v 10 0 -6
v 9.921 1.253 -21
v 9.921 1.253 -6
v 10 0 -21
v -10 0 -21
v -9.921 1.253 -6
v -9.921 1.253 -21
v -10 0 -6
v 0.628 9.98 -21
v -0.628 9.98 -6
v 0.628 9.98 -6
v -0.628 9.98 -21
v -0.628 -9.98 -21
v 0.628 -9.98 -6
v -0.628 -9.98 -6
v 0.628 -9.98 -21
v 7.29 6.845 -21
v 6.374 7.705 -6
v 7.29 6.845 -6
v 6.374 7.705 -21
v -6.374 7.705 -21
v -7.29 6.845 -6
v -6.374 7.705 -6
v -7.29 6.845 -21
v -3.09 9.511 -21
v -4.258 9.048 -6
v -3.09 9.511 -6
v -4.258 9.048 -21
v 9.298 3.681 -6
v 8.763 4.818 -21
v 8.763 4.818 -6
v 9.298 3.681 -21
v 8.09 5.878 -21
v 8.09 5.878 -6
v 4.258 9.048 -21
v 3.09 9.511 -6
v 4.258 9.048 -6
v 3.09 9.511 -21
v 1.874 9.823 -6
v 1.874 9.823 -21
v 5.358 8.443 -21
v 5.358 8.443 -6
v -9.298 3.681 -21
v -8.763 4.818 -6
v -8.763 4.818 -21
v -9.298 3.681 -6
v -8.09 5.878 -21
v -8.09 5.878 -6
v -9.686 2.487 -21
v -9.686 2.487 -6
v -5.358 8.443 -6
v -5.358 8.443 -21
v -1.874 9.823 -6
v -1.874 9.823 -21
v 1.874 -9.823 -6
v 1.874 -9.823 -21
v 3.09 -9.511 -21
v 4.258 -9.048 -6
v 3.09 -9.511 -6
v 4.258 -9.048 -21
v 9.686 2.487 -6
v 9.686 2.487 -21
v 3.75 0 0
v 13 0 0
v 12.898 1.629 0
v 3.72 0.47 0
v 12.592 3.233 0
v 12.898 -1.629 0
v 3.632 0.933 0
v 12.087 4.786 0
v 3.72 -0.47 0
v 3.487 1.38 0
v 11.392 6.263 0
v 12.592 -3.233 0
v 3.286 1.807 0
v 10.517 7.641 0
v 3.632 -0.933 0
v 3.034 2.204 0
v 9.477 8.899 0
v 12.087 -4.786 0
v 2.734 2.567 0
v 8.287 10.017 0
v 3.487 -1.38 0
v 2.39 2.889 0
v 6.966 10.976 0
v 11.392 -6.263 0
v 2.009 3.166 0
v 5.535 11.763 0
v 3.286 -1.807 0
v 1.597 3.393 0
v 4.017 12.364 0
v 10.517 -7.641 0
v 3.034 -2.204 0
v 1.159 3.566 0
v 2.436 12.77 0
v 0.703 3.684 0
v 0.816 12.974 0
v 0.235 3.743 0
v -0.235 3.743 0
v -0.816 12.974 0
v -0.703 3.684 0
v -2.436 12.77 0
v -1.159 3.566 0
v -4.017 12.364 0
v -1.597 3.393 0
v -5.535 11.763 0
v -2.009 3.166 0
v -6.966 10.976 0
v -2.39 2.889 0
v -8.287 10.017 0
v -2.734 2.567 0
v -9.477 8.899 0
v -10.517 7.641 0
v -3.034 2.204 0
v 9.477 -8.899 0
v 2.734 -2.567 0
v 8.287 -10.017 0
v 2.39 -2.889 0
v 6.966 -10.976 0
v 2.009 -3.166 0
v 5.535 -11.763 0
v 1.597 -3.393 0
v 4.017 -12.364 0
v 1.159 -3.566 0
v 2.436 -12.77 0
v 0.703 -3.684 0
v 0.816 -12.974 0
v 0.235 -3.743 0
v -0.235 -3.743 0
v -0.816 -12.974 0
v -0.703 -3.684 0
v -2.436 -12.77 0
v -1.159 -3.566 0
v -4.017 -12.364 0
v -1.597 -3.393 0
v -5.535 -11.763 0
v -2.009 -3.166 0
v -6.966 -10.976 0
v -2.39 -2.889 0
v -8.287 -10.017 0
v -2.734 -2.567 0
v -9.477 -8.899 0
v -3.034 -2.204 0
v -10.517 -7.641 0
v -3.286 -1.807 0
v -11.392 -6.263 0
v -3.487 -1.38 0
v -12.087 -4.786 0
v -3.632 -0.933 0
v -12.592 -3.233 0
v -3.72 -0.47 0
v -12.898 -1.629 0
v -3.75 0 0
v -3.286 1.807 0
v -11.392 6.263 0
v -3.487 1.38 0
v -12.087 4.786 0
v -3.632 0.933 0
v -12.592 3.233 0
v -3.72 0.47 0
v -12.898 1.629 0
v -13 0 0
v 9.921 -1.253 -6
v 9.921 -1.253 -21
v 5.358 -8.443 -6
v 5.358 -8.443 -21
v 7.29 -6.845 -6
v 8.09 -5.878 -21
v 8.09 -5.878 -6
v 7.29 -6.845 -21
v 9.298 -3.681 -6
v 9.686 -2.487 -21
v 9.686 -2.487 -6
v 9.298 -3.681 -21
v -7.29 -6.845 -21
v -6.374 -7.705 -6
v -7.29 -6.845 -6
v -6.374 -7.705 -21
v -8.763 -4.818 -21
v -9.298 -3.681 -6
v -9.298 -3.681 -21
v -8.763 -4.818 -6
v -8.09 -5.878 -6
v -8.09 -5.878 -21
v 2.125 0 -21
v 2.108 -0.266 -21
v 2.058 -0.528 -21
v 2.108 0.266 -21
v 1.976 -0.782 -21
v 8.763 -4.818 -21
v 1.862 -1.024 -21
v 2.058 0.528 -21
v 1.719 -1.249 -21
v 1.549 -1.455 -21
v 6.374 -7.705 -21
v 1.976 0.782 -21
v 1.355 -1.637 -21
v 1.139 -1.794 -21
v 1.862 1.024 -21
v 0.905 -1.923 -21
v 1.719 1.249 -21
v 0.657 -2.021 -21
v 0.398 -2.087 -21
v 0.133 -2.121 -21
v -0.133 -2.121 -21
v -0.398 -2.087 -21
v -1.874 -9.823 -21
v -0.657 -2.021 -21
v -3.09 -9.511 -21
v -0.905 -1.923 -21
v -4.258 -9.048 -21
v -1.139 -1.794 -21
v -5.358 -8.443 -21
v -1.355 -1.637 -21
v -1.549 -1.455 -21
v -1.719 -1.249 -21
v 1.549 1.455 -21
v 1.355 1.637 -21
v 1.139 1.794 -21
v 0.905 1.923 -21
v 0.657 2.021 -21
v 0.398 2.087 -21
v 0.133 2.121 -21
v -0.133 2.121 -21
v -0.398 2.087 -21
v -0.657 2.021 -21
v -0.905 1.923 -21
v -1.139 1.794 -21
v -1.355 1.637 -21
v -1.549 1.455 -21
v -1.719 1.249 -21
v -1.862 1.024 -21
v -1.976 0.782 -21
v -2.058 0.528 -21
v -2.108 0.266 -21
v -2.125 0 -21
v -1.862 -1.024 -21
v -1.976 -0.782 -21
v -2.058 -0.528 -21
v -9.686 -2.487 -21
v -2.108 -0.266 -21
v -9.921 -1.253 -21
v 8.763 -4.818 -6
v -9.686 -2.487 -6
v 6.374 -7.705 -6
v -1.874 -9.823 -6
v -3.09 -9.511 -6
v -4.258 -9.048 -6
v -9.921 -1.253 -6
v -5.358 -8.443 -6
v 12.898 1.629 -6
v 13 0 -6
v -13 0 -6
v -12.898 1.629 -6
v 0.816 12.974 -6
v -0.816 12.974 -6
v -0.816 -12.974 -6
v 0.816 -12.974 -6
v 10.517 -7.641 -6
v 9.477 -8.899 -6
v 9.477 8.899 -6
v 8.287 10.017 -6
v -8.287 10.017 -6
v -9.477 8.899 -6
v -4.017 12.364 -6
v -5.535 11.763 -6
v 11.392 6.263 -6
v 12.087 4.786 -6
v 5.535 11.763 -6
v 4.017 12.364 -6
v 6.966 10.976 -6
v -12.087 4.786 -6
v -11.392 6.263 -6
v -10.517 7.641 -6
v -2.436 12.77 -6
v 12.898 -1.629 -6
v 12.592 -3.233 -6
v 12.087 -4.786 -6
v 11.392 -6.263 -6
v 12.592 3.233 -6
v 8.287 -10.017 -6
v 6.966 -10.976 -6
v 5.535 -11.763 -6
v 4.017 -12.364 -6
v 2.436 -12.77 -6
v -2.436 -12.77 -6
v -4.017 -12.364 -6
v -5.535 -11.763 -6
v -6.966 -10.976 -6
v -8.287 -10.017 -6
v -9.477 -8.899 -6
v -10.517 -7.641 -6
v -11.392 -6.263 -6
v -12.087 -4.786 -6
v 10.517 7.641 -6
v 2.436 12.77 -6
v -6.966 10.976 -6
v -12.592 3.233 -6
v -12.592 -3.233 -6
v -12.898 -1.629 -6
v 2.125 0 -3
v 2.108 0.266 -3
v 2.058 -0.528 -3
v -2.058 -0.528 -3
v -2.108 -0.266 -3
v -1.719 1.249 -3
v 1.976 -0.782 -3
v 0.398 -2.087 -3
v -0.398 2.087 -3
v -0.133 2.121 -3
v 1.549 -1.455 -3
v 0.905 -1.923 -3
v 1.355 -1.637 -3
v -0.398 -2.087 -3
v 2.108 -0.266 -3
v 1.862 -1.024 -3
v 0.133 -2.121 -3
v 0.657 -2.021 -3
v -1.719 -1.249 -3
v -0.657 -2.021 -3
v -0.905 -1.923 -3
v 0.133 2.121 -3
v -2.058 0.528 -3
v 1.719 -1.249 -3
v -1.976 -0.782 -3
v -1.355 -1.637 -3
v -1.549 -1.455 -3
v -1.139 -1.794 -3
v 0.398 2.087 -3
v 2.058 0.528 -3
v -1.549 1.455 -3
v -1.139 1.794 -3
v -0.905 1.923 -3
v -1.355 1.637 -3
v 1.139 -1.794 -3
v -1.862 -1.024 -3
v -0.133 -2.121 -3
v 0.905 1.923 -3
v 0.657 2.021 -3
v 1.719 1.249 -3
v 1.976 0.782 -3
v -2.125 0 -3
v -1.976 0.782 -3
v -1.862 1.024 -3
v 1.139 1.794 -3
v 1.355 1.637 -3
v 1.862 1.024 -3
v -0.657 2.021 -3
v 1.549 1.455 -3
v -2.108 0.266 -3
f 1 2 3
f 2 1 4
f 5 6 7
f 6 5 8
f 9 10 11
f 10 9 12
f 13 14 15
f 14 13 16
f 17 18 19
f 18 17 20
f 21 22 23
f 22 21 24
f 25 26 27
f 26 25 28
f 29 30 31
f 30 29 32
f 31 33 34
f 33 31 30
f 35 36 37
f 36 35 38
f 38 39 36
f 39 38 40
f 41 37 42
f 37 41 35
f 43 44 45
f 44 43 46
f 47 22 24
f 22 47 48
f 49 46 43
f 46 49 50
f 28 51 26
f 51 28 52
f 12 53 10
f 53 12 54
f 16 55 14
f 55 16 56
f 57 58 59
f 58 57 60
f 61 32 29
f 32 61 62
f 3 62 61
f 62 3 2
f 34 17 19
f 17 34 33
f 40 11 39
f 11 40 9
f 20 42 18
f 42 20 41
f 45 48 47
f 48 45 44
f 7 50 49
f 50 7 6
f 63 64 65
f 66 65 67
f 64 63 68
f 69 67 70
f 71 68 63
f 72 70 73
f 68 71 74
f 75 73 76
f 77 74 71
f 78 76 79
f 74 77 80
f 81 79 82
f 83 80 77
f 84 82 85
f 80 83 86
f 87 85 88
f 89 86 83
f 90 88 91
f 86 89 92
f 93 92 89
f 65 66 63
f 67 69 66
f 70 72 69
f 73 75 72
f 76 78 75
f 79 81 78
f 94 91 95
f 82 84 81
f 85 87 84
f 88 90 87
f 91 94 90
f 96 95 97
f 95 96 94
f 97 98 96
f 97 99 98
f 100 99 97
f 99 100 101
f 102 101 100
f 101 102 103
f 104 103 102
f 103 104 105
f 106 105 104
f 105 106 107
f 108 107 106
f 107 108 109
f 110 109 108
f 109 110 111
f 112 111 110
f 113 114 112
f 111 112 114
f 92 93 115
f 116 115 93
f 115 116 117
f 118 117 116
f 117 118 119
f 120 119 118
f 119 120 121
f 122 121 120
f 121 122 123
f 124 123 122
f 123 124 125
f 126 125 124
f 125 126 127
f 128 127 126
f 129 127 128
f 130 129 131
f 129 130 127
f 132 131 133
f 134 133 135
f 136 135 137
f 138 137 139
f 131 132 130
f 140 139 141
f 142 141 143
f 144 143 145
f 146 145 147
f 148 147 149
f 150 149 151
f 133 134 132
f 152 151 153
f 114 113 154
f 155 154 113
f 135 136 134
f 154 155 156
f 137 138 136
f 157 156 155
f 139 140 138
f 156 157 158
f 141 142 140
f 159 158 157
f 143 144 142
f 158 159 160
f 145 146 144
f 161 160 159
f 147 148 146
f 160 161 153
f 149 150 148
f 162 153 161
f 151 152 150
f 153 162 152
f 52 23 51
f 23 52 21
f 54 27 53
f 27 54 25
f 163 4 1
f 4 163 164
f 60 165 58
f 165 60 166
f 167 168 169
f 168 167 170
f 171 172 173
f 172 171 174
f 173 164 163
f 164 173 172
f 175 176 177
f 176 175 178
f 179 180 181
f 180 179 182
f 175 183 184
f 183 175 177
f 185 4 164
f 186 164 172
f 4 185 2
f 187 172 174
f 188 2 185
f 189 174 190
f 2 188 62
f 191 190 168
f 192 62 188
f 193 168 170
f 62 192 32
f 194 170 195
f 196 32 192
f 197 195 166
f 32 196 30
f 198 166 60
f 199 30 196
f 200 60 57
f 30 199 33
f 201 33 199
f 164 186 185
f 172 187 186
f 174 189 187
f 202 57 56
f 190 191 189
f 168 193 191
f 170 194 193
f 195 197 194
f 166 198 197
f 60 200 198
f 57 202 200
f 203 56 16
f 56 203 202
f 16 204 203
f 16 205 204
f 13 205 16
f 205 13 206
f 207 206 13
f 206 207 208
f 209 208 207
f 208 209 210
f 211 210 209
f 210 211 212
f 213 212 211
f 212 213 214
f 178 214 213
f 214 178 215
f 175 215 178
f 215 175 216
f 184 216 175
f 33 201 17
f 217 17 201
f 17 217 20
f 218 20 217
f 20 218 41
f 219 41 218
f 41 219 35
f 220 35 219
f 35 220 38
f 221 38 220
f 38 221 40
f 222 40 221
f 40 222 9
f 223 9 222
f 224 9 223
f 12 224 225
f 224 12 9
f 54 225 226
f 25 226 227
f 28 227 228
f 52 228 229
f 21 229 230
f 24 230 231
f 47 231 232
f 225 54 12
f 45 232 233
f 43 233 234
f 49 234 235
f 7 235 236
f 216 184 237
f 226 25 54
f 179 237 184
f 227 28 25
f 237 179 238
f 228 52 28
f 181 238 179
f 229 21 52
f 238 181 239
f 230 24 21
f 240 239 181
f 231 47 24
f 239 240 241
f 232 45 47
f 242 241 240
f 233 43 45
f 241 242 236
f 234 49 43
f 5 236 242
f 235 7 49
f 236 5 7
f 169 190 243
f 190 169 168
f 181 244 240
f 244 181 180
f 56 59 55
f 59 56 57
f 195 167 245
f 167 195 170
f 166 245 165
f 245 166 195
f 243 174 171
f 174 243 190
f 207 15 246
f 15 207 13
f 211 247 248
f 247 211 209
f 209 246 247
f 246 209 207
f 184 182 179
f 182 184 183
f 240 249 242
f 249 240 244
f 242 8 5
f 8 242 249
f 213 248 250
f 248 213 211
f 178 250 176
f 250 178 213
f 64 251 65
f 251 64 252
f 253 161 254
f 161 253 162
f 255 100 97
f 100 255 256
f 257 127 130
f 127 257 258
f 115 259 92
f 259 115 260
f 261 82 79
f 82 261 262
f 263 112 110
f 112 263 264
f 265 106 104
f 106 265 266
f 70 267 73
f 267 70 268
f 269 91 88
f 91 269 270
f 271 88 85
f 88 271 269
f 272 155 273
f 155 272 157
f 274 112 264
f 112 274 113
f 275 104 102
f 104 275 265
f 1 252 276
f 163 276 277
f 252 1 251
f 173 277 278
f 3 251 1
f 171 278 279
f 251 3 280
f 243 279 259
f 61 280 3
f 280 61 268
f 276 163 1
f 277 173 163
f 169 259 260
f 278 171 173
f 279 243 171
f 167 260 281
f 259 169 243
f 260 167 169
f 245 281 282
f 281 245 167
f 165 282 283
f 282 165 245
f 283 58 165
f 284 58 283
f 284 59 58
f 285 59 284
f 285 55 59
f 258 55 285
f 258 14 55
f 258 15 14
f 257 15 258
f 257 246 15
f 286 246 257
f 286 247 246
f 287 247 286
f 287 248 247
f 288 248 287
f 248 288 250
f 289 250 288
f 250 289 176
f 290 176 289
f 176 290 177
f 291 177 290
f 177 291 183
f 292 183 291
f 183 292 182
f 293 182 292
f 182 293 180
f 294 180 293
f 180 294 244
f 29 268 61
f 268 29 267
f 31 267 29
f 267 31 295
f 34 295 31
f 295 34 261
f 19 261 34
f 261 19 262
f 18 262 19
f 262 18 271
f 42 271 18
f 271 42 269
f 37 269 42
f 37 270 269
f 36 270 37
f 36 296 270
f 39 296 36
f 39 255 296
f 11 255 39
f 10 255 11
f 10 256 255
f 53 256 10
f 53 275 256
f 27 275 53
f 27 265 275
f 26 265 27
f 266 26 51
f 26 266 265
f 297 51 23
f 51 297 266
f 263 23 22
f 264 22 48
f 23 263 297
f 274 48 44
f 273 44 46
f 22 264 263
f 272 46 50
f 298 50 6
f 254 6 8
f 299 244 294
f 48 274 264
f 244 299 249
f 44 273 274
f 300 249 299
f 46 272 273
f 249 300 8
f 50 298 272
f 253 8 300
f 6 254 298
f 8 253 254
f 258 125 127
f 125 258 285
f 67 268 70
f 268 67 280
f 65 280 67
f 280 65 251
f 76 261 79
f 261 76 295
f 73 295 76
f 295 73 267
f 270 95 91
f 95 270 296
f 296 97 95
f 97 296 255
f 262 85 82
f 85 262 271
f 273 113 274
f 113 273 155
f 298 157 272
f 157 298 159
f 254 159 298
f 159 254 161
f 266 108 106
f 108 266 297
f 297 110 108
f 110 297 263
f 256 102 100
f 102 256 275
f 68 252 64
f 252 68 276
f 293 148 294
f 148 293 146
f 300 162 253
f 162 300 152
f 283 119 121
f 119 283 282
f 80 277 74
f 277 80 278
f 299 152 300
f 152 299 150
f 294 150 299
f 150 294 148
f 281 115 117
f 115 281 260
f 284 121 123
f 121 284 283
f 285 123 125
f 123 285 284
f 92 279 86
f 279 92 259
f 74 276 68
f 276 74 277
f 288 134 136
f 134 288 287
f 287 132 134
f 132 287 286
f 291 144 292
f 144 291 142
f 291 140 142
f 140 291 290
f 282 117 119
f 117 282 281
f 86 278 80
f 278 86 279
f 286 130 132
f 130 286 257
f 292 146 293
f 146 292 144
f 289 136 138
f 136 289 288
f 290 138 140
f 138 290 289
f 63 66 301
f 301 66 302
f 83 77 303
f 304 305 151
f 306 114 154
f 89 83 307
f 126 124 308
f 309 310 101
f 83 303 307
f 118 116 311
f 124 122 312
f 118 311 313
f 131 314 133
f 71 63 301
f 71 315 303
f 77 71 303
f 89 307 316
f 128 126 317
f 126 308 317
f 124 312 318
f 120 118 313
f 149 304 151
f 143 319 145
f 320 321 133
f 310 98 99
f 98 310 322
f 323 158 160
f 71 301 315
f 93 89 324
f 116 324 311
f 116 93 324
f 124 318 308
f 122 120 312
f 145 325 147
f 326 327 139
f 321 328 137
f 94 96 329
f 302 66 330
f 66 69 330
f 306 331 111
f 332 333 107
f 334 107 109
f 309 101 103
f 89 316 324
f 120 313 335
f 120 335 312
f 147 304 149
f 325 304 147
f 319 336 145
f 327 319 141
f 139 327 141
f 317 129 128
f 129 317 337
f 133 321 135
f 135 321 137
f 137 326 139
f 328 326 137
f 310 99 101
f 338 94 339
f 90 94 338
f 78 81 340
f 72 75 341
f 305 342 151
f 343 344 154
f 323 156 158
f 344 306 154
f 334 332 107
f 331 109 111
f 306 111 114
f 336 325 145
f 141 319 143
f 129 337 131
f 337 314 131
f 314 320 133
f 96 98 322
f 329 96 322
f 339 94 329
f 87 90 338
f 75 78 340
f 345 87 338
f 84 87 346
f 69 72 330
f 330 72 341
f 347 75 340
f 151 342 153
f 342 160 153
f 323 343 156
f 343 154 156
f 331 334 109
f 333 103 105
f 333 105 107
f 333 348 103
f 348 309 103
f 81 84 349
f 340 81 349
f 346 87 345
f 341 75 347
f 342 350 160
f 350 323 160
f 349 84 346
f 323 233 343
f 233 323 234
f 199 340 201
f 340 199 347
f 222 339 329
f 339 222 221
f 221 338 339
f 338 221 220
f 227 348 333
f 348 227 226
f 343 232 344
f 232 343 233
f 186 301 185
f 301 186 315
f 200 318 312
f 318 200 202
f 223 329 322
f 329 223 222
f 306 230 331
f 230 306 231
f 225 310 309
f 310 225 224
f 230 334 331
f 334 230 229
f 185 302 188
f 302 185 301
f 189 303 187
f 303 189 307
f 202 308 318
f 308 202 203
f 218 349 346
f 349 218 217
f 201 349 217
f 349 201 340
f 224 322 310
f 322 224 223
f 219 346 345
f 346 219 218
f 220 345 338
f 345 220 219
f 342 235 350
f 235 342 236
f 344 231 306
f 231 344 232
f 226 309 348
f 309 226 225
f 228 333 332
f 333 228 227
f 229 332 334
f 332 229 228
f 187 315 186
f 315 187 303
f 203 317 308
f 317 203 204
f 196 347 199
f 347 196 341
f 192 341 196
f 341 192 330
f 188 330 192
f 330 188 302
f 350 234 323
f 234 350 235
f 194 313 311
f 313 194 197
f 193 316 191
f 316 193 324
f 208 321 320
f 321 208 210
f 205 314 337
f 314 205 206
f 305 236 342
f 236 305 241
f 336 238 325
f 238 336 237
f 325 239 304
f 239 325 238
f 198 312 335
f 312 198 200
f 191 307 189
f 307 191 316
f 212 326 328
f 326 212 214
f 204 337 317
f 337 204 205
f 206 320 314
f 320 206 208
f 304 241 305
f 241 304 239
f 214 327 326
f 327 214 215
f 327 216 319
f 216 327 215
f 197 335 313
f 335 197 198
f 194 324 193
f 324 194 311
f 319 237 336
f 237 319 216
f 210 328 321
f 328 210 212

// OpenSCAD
$fn = 50;


difference() {
	union() {
		translate(v = [0, 0, -21.0000000000]) {
			cylinder(h = 21, r = 10.0000000000);
		}
		translate(v = [0, 0, -6.0000000000]) {
			cylinder(h = 6, r = 13.0000000000);
		}
	}
	union() {
		translate(v = [0, 0, 0]) {
			rotate(a = [0, 0, 0]) {
				difference() {
					union() {
						#translate(v = [0, 0, -21.0000000000]) {
							cylinder(h = 21, r = 2.0000000000);
						}
						#translate(v = [0, 0, -3]) {
							cylinder(h = 3, r1 = 2.1250000000, r2 = 3.7500000000);
						}
						#translate(v = [0, 0, -21.0000000000]) {
							cylinder(h = 21, r = 2.1250000000);
						}
						#translate(v = [0, 0, -21.0000000000]) {
							cylinder(h = 21, r = 2.0000000000);
						}
					}
					union();
				}
			}
		}
	}
}
